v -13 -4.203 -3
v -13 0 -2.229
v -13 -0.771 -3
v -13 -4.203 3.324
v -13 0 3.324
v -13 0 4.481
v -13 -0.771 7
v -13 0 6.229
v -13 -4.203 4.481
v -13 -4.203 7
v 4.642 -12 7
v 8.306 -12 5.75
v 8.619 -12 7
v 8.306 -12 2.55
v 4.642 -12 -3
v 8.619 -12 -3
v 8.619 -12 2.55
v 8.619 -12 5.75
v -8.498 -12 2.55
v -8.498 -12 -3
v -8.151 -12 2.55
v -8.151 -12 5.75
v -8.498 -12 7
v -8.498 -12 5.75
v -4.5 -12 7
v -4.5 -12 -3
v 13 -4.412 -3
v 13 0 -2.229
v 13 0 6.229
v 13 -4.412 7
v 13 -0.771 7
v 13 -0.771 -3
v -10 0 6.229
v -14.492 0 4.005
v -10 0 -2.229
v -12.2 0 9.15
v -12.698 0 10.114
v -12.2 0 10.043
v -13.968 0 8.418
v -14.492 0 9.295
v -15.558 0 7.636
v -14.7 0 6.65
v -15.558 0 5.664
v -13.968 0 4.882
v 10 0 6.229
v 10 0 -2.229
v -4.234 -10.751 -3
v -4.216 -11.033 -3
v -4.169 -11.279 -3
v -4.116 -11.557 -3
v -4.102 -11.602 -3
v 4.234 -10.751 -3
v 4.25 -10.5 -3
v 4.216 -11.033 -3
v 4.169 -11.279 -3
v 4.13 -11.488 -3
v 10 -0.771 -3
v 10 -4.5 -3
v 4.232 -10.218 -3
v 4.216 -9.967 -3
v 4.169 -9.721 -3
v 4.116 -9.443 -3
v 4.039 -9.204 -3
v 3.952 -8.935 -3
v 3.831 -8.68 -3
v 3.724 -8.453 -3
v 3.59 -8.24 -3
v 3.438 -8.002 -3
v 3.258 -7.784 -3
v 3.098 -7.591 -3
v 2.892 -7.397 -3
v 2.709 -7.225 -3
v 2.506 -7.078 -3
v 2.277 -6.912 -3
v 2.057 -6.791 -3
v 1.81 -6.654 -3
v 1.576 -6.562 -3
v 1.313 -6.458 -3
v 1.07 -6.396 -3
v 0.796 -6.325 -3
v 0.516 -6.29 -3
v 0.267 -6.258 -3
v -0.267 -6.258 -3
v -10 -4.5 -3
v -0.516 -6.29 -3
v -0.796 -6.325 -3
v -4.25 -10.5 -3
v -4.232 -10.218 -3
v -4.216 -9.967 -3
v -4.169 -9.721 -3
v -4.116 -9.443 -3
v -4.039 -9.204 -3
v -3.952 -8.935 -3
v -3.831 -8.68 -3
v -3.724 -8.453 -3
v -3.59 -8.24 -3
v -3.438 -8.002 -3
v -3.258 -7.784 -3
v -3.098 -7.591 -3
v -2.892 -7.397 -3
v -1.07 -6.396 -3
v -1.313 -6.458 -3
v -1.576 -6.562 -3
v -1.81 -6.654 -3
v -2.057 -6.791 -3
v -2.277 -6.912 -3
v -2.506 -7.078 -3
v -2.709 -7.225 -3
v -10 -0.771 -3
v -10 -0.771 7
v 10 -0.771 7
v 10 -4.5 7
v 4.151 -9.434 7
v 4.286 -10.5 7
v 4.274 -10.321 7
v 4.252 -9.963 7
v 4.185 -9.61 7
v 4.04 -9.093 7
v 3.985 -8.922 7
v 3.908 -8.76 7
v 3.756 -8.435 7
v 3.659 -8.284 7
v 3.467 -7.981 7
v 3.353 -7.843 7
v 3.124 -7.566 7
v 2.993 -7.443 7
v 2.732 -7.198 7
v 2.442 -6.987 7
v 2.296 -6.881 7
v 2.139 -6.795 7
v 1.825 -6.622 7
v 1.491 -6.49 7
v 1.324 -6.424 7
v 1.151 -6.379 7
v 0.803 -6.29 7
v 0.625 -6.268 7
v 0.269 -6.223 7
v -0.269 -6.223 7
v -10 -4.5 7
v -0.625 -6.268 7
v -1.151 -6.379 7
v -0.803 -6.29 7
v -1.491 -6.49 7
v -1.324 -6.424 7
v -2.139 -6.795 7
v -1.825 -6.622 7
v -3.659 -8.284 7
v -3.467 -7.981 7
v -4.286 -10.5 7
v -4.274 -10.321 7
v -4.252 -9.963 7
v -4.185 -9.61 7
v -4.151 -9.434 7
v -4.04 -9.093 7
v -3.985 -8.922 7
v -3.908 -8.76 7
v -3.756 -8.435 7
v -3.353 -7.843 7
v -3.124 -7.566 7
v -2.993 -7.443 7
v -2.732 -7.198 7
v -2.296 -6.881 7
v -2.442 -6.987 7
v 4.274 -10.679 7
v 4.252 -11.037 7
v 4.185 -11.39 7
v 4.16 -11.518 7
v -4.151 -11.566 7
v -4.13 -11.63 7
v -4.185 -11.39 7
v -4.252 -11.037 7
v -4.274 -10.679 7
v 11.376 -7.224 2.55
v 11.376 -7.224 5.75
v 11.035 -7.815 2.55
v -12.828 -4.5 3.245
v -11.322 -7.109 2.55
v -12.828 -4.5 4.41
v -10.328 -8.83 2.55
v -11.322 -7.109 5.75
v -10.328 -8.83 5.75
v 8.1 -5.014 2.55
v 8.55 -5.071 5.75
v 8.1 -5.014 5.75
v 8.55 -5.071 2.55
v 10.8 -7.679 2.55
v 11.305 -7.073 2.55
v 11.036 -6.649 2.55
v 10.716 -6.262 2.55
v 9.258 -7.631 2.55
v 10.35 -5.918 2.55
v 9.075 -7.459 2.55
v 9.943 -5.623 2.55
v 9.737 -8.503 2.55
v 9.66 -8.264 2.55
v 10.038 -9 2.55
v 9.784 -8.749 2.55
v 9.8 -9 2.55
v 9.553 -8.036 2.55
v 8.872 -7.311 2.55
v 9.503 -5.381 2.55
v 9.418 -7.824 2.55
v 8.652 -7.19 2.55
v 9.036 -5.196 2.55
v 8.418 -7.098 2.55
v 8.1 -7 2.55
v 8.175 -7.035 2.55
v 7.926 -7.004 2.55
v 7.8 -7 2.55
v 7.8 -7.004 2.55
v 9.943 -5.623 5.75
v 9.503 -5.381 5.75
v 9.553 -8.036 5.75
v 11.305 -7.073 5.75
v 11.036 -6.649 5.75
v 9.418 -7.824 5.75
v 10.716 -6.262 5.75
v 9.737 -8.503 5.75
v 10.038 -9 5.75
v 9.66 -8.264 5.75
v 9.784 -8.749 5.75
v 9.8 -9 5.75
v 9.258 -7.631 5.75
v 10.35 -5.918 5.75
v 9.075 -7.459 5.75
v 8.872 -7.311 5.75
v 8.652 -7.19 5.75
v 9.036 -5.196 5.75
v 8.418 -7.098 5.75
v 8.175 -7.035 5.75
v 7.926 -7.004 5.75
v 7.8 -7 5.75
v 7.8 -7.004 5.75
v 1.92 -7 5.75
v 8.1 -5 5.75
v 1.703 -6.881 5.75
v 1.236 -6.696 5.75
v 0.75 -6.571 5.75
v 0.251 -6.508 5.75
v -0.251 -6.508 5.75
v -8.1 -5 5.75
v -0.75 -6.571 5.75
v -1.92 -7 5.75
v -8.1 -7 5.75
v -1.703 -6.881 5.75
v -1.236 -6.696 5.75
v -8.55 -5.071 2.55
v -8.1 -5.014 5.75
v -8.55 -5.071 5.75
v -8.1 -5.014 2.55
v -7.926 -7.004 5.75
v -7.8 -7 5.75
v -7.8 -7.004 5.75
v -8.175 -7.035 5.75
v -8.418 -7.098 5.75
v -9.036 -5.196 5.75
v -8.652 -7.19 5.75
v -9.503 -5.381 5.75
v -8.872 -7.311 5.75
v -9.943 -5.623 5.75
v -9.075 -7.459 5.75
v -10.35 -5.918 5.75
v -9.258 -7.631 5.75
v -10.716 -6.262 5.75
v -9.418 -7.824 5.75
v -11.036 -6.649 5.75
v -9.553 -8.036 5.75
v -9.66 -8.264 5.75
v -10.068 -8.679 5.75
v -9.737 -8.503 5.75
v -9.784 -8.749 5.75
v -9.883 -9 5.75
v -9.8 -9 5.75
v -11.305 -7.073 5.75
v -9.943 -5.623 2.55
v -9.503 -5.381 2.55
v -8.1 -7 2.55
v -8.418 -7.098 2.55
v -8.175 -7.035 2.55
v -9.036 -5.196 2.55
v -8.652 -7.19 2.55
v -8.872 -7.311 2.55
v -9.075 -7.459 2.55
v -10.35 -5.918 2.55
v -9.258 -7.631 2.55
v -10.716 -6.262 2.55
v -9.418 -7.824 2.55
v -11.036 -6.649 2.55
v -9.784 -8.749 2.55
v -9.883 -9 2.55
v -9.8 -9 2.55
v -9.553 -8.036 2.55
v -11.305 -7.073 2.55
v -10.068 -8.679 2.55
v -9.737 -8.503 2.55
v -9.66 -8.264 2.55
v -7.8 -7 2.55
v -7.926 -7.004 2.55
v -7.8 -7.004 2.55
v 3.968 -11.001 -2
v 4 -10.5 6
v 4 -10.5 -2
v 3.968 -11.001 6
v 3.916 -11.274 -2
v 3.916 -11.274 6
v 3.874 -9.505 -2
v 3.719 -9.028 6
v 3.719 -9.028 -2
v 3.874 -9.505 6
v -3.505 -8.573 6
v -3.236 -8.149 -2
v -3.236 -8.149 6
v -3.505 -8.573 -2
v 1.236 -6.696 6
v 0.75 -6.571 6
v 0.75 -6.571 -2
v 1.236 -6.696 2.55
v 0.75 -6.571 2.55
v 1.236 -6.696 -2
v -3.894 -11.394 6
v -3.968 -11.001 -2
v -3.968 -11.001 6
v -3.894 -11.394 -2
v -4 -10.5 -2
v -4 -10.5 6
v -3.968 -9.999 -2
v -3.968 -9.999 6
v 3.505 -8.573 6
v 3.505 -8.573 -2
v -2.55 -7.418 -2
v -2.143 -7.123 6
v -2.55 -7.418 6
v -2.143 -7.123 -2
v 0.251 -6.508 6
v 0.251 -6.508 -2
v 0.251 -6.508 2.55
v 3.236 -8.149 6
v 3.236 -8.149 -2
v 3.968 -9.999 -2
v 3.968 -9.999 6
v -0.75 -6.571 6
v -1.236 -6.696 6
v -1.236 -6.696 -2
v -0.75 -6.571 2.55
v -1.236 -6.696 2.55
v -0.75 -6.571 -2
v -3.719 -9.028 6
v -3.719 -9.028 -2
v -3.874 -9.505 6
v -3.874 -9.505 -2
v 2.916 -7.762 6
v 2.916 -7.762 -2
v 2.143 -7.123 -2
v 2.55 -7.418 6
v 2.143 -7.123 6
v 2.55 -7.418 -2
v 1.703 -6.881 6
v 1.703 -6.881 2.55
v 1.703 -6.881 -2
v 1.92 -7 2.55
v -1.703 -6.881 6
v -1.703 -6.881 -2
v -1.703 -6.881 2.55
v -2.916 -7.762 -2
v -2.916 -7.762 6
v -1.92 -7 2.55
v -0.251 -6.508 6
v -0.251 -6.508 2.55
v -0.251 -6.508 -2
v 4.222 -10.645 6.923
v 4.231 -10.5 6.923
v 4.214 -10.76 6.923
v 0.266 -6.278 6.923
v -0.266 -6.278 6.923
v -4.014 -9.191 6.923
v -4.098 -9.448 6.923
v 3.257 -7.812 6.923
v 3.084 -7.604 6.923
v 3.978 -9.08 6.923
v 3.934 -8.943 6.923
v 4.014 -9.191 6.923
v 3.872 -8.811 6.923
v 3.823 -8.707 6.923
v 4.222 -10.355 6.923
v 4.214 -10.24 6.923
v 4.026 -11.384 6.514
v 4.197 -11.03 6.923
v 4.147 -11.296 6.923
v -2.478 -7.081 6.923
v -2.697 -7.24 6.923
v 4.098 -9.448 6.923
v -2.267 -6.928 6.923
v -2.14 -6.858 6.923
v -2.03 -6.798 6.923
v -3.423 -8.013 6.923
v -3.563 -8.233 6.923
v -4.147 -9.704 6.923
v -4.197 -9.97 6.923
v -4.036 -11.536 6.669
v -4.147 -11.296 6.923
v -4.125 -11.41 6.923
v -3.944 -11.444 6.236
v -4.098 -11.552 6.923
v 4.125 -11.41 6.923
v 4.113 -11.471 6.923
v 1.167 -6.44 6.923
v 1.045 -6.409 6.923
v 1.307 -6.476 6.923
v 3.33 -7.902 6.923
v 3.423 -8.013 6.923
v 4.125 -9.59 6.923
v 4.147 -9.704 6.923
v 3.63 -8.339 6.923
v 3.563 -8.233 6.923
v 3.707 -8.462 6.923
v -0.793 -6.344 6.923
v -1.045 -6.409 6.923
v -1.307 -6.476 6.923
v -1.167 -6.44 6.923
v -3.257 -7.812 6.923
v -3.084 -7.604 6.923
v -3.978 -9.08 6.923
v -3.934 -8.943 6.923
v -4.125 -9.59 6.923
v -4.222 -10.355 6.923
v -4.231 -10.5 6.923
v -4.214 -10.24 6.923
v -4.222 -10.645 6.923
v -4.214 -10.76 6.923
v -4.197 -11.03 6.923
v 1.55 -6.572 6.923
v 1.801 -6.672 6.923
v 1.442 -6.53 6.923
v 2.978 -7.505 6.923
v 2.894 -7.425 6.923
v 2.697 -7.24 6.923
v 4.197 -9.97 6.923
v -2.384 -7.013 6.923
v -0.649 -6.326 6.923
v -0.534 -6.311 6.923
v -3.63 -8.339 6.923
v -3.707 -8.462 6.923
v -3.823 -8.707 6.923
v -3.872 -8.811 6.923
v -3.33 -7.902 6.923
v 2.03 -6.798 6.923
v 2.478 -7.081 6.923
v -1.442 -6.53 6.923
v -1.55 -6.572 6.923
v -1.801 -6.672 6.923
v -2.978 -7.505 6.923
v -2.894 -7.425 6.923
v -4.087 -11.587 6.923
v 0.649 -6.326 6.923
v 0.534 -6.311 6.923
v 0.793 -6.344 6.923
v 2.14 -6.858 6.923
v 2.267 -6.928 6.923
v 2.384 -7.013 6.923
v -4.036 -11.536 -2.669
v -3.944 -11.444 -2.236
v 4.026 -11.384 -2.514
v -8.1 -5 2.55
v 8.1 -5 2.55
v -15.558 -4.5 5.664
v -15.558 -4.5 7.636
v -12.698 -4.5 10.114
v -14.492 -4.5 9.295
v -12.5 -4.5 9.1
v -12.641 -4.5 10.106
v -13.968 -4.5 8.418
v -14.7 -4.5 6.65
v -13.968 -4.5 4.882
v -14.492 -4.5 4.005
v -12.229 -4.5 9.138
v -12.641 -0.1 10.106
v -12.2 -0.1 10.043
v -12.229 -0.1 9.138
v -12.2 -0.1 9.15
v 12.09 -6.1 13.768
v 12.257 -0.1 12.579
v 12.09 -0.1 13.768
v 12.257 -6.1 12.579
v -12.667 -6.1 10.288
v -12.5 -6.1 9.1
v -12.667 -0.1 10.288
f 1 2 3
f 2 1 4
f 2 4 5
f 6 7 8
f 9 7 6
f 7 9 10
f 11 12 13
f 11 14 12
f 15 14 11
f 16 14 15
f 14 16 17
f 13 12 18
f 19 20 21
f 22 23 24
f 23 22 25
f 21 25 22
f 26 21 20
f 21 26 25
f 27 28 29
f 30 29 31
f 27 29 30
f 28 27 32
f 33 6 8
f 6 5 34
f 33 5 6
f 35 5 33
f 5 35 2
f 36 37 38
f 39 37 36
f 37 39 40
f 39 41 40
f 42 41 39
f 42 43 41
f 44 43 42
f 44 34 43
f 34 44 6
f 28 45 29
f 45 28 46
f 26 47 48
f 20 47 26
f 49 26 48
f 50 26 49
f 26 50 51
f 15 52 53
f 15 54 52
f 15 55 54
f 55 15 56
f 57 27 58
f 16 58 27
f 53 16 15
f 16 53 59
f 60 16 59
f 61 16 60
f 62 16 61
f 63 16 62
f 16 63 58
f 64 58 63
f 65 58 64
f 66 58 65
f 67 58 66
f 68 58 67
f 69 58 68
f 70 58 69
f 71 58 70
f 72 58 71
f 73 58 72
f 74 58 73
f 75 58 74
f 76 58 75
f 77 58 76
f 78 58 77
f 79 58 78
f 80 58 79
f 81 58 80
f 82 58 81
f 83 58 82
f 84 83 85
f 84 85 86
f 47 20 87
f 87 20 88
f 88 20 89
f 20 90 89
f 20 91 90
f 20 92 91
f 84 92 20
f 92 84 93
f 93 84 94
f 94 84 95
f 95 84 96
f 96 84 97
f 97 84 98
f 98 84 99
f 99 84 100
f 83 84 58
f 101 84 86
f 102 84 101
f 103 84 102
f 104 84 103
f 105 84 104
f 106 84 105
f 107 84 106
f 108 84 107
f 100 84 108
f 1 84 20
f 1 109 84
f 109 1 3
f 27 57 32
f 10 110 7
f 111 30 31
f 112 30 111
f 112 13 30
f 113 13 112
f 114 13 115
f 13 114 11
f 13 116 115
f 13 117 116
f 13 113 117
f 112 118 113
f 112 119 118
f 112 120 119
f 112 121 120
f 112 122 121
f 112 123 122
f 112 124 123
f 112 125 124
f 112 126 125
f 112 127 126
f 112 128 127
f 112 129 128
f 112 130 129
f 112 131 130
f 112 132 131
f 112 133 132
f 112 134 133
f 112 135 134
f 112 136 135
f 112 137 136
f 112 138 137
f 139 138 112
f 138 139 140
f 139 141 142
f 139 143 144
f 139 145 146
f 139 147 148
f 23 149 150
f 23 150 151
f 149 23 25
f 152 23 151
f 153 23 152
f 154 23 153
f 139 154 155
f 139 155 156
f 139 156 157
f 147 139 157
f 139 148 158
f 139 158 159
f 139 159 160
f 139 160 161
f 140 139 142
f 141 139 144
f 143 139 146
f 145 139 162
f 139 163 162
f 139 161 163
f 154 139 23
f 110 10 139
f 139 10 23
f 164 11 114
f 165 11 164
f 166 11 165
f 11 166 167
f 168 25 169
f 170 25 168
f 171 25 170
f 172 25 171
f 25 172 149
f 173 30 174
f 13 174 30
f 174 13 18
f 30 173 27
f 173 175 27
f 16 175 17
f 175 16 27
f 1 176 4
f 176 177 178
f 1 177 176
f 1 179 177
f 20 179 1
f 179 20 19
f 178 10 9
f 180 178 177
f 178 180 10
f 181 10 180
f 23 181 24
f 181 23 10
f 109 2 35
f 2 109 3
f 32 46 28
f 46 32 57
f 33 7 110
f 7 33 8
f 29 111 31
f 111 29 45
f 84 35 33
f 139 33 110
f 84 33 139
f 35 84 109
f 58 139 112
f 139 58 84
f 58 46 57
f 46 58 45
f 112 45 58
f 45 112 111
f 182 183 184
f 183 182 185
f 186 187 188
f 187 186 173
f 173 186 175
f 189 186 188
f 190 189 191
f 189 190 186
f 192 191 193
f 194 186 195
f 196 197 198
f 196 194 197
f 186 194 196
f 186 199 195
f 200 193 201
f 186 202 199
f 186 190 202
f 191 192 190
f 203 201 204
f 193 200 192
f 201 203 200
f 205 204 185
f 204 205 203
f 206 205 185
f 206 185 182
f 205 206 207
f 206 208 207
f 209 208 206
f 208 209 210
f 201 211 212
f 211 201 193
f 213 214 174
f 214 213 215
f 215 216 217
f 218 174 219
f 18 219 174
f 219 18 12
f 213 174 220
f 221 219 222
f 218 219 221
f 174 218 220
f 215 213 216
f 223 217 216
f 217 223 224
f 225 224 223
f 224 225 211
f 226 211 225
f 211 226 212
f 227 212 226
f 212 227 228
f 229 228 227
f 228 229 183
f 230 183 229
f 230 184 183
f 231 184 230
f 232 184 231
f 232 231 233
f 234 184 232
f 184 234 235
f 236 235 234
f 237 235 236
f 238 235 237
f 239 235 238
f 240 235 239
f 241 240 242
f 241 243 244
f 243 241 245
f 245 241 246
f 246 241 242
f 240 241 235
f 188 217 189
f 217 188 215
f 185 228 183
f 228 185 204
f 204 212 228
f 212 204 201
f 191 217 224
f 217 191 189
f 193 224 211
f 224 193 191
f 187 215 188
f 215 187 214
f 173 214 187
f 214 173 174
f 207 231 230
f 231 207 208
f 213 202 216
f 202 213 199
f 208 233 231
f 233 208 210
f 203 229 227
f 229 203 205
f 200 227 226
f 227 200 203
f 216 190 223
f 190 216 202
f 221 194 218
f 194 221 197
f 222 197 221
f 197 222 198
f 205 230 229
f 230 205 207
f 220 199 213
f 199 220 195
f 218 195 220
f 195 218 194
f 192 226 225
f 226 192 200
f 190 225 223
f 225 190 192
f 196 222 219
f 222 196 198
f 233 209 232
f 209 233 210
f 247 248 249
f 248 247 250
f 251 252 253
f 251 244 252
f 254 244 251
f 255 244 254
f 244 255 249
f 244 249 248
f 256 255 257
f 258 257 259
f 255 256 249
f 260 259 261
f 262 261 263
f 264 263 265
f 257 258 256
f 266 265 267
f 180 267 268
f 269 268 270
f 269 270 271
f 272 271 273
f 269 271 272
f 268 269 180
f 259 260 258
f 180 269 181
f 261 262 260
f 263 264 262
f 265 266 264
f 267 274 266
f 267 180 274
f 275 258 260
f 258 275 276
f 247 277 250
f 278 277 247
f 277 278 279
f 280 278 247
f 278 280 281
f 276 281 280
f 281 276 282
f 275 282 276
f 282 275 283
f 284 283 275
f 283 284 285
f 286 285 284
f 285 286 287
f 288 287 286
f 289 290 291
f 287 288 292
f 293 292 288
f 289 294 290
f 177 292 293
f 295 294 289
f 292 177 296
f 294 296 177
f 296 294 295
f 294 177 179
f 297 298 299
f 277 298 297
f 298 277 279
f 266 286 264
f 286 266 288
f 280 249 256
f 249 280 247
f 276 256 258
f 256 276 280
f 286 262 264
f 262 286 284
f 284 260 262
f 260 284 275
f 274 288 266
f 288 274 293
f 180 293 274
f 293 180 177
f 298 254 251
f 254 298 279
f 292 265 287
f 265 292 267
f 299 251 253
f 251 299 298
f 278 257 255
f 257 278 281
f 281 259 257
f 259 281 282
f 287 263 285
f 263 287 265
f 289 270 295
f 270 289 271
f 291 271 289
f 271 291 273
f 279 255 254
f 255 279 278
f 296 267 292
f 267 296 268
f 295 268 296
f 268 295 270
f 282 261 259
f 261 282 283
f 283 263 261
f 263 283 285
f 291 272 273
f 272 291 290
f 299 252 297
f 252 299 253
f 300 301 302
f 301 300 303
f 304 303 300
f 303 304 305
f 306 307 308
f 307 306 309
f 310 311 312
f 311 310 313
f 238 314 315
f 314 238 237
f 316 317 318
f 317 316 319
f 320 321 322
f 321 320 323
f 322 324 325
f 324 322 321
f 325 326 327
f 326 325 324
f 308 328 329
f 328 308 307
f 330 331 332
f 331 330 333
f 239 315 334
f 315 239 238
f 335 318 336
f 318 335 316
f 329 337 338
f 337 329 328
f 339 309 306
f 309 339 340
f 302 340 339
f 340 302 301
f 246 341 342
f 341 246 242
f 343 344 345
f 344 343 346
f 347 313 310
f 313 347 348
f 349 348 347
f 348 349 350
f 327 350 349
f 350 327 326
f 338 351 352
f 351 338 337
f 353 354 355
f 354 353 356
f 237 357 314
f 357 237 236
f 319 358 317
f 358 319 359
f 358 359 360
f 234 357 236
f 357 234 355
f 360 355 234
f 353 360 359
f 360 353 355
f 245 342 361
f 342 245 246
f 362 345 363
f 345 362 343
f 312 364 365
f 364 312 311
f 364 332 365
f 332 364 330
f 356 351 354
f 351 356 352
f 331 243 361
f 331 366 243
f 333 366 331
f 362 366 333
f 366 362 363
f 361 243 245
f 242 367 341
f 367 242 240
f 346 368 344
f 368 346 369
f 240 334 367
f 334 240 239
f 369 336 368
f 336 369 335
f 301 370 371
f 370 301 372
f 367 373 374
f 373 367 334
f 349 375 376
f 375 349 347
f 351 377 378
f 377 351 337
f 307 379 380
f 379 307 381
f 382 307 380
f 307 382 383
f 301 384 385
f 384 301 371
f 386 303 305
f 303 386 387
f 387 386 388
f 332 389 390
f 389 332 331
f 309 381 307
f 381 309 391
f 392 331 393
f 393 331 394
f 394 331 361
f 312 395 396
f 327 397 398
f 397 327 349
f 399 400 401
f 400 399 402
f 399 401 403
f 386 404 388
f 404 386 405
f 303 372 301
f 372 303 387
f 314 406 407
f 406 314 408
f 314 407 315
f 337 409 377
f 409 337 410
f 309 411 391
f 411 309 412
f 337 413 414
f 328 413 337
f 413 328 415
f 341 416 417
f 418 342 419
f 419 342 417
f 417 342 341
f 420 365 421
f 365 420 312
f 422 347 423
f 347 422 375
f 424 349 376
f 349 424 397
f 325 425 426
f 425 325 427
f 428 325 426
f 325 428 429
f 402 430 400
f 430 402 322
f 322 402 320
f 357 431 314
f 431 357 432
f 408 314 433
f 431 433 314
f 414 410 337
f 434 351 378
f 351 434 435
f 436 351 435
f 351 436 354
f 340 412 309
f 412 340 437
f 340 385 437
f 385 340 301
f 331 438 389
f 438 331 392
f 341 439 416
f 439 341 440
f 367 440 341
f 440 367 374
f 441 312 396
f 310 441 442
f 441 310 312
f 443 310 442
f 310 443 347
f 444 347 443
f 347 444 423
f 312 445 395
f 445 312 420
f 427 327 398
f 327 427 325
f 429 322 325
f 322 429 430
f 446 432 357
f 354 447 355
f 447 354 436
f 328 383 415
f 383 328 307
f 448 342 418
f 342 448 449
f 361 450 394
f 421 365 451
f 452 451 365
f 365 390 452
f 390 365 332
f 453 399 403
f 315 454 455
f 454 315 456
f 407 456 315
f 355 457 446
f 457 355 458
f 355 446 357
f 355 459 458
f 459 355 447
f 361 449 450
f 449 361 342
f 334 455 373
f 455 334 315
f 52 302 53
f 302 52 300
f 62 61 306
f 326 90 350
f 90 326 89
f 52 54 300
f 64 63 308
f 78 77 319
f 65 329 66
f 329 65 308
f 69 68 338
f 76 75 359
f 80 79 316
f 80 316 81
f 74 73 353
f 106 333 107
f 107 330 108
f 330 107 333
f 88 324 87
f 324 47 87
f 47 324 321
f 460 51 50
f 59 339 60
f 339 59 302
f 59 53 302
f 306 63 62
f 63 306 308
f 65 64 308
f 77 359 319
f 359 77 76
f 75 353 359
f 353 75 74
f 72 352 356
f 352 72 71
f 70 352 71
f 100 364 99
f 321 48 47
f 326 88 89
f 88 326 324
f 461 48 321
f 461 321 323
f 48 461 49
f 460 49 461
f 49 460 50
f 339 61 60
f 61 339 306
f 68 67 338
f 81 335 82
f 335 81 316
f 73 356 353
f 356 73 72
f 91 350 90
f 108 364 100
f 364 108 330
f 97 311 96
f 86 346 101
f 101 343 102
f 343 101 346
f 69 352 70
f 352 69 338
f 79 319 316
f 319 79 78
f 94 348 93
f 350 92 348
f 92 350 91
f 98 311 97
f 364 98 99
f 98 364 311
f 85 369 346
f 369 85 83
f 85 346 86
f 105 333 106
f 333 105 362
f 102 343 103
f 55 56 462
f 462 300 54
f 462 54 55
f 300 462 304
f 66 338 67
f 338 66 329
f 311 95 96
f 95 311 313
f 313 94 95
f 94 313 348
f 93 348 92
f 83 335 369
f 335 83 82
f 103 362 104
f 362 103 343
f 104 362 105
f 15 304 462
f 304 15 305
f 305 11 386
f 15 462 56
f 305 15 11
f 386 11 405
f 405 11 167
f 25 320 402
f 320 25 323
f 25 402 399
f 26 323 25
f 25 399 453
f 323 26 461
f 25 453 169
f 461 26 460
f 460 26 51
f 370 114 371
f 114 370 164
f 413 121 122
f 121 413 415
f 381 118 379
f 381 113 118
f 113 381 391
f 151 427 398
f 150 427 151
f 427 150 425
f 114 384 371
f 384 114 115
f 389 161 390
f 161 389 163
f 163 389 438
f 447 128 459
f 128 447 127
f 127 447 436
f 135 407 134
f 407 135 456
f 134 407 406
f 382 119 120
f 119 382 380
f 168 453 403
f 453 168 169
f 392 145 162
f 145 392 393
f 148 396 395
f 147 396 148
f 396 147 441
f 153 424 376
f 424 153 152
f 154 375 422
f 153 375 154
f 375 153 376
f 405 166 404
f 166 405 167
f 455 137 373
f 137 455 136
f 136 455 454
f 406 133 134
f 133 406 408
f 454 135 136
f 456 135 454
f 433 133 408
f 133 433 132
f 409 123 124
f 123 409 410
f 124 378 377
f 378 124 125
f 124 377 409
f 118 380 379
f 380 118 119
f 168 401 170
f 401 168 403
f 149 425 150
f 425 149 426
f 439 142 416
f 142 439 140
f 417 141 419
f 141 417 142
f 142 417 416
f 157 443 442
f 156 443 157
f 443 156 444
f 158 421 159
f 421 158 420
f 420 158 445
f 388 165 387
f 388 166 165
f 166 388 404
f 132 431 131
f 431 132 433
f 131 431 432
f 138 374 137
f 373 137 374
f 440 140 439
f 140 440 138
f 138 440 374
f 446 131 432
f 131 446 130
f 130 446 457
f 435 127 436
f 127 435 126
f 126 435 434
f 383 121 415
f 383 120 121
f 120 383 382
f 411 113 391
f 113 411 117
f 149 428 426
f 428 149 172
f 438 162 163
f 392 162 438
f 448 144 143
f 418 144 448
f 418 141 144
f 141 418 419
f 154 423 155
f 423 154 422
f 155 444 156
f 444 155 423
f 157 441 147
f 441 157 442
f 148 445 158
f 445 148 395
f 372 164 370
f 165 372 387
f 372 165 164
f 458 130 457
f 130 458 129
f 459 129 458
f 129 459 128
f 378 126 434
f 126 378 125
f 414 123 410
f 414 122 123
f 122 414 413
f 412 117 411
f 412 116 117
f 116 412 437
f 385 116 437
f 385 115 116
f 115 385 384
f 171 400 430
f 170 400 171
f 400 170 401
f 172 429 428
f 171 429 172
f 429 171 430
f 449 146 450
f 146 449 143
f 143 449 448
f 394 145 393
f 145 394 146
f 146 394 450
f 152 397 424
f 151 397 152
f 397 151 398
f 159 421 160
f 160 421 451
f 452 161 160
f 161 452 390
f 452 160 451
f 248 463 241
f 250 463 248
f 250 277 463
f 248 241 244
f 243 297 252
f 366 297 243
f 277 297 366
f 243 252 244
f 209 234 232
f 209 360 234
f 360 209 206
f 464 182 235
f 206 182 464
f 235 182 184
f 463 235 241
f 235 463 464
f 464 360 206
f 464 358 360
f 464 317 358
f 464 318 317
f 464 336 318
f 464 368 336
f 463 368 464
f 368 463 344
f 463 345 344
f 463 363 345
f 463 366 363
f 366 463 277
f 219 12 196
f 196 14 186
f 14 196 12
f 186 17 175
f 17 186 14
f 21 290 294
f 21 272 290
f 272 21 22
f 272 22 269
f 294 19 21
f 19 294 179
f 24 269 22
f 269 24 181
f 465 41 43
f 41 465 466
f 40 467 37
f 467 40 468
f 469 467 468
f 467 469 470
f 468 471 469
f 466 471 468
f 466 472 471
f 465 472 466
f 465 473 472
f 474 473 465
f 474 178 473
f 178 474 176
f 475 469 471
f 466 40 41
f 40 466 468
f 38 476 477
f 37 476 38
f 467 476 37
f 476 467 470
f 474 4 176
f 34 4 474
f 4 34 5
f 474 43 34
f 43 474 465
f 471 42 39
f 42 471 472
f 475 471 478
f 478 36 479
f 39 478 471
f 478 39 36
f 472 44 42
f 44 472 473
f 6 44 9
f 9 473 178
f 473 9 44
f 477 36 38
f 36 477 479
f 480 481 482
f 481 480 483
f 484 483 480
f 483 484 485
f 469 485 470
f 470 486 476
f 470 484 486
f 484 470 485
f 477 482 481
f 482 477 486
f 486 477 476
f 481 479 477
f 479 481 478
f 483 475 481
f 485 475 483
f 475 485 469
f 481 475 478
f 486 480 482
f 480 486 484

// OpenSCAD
// PRUSA iteration4
// Y holder front
// GNU GPL v3
// Josef Průša <iam@josefprusa.cz> and contributors
// http://www.reprap.org/wiki/Prusa_Mendel
// http://prusamendel.org

module ziptie_round_edge()
{
    difference()
    {
        translate([0,0,0]) rotate([90,0,0]) cylinder( h=3.2, r=4, $fn=50 );  
        translate([0,1,0]) rotate([90,0,0]) cylinder( h=5, r=2, $fn=50 );  
        translate([-10,-4,0]) cube([20,5,5]);
        translate([-20,-4,-13]) cube([20,5,20]);
    }
}


module part()    
{

    difference()
    {
        union()
        {
            // body block
            difference() {
                translate([-13,-3,0]) cube([26,10,12]);
                
                // upper corners
                translate([4,-3.5,20]) rotate([0,60,0]) cube([20,30,20]);
                translate([-21.2,-3.5,30]) rotate([0,120,0]) cube([20,30,20]);
                translate([-15,-3.3,-6]) rotate([45,0,0]) cube([30,5,5]);
                translate([15,7.3,-6]) rotate([45,0,180]) cube([30,5,5]);

                translate([-10, -3, -2]) switch();
            }
        }

        // y-axis cut
        translate([0,11,10.5]) rotate([90,0,0]) cylinder( h=14, r=4, $fn=50 );
        translate([0,8,10.5]) rotate([90,0,0]) cylinder( h=2, r1=4.5, r2=4, $fn=50 );
        translate([0,-2,10.5]) rotate([90,0,0]) cylinder( h=2, r1=4, r2=4.5, $fn=50 );
        translate([-7,-4,14.5]) rotate([0,45,0]) cube([10,20,10]);
        translate([0,8,10.5]) rotate([90,0,0]) cylinder( h=1.4, r1=5, r2=4, $fn=50 );
        
        // ziptie
        translate([7.8,5.75,9]) ziptie_round_edge();
        translate([-7.8,2.55,9]) rotate([0,0,180]) ziptie_round_edge();
        translate([-8.1,2.55,5]) cube([16.2,3.2,2]);
        translate([0.8,2.55,25]) rotate([0,60,0]) cube([20,3.2,2]);
        translate([-1.8,2.55,27]) rotate([0,120,0]) cube([20,3.2,2]);
    }
}

module switch() 
{
    cube([20, 10.5, 6.5]);
}

module switchSpring() 
{
    translate([-.5,6.6,.1]) rotate([0,0,8]) cube([25,1.2,6]);  //arm

    translate([-.2, 4.15, 0])
    difference(){  
        cylinder(d=7,h=4.5); //spring
        translate([0,0,-.1]) cylinder(d=5,h=4.7); 
        translate([0,-5,-.1]) cube([10,10,7]); 
    }
}

rotate([90,0,0]) part();

rotate([90,0,0]) translate([-12, 2.5, 0]) switchSpring();
